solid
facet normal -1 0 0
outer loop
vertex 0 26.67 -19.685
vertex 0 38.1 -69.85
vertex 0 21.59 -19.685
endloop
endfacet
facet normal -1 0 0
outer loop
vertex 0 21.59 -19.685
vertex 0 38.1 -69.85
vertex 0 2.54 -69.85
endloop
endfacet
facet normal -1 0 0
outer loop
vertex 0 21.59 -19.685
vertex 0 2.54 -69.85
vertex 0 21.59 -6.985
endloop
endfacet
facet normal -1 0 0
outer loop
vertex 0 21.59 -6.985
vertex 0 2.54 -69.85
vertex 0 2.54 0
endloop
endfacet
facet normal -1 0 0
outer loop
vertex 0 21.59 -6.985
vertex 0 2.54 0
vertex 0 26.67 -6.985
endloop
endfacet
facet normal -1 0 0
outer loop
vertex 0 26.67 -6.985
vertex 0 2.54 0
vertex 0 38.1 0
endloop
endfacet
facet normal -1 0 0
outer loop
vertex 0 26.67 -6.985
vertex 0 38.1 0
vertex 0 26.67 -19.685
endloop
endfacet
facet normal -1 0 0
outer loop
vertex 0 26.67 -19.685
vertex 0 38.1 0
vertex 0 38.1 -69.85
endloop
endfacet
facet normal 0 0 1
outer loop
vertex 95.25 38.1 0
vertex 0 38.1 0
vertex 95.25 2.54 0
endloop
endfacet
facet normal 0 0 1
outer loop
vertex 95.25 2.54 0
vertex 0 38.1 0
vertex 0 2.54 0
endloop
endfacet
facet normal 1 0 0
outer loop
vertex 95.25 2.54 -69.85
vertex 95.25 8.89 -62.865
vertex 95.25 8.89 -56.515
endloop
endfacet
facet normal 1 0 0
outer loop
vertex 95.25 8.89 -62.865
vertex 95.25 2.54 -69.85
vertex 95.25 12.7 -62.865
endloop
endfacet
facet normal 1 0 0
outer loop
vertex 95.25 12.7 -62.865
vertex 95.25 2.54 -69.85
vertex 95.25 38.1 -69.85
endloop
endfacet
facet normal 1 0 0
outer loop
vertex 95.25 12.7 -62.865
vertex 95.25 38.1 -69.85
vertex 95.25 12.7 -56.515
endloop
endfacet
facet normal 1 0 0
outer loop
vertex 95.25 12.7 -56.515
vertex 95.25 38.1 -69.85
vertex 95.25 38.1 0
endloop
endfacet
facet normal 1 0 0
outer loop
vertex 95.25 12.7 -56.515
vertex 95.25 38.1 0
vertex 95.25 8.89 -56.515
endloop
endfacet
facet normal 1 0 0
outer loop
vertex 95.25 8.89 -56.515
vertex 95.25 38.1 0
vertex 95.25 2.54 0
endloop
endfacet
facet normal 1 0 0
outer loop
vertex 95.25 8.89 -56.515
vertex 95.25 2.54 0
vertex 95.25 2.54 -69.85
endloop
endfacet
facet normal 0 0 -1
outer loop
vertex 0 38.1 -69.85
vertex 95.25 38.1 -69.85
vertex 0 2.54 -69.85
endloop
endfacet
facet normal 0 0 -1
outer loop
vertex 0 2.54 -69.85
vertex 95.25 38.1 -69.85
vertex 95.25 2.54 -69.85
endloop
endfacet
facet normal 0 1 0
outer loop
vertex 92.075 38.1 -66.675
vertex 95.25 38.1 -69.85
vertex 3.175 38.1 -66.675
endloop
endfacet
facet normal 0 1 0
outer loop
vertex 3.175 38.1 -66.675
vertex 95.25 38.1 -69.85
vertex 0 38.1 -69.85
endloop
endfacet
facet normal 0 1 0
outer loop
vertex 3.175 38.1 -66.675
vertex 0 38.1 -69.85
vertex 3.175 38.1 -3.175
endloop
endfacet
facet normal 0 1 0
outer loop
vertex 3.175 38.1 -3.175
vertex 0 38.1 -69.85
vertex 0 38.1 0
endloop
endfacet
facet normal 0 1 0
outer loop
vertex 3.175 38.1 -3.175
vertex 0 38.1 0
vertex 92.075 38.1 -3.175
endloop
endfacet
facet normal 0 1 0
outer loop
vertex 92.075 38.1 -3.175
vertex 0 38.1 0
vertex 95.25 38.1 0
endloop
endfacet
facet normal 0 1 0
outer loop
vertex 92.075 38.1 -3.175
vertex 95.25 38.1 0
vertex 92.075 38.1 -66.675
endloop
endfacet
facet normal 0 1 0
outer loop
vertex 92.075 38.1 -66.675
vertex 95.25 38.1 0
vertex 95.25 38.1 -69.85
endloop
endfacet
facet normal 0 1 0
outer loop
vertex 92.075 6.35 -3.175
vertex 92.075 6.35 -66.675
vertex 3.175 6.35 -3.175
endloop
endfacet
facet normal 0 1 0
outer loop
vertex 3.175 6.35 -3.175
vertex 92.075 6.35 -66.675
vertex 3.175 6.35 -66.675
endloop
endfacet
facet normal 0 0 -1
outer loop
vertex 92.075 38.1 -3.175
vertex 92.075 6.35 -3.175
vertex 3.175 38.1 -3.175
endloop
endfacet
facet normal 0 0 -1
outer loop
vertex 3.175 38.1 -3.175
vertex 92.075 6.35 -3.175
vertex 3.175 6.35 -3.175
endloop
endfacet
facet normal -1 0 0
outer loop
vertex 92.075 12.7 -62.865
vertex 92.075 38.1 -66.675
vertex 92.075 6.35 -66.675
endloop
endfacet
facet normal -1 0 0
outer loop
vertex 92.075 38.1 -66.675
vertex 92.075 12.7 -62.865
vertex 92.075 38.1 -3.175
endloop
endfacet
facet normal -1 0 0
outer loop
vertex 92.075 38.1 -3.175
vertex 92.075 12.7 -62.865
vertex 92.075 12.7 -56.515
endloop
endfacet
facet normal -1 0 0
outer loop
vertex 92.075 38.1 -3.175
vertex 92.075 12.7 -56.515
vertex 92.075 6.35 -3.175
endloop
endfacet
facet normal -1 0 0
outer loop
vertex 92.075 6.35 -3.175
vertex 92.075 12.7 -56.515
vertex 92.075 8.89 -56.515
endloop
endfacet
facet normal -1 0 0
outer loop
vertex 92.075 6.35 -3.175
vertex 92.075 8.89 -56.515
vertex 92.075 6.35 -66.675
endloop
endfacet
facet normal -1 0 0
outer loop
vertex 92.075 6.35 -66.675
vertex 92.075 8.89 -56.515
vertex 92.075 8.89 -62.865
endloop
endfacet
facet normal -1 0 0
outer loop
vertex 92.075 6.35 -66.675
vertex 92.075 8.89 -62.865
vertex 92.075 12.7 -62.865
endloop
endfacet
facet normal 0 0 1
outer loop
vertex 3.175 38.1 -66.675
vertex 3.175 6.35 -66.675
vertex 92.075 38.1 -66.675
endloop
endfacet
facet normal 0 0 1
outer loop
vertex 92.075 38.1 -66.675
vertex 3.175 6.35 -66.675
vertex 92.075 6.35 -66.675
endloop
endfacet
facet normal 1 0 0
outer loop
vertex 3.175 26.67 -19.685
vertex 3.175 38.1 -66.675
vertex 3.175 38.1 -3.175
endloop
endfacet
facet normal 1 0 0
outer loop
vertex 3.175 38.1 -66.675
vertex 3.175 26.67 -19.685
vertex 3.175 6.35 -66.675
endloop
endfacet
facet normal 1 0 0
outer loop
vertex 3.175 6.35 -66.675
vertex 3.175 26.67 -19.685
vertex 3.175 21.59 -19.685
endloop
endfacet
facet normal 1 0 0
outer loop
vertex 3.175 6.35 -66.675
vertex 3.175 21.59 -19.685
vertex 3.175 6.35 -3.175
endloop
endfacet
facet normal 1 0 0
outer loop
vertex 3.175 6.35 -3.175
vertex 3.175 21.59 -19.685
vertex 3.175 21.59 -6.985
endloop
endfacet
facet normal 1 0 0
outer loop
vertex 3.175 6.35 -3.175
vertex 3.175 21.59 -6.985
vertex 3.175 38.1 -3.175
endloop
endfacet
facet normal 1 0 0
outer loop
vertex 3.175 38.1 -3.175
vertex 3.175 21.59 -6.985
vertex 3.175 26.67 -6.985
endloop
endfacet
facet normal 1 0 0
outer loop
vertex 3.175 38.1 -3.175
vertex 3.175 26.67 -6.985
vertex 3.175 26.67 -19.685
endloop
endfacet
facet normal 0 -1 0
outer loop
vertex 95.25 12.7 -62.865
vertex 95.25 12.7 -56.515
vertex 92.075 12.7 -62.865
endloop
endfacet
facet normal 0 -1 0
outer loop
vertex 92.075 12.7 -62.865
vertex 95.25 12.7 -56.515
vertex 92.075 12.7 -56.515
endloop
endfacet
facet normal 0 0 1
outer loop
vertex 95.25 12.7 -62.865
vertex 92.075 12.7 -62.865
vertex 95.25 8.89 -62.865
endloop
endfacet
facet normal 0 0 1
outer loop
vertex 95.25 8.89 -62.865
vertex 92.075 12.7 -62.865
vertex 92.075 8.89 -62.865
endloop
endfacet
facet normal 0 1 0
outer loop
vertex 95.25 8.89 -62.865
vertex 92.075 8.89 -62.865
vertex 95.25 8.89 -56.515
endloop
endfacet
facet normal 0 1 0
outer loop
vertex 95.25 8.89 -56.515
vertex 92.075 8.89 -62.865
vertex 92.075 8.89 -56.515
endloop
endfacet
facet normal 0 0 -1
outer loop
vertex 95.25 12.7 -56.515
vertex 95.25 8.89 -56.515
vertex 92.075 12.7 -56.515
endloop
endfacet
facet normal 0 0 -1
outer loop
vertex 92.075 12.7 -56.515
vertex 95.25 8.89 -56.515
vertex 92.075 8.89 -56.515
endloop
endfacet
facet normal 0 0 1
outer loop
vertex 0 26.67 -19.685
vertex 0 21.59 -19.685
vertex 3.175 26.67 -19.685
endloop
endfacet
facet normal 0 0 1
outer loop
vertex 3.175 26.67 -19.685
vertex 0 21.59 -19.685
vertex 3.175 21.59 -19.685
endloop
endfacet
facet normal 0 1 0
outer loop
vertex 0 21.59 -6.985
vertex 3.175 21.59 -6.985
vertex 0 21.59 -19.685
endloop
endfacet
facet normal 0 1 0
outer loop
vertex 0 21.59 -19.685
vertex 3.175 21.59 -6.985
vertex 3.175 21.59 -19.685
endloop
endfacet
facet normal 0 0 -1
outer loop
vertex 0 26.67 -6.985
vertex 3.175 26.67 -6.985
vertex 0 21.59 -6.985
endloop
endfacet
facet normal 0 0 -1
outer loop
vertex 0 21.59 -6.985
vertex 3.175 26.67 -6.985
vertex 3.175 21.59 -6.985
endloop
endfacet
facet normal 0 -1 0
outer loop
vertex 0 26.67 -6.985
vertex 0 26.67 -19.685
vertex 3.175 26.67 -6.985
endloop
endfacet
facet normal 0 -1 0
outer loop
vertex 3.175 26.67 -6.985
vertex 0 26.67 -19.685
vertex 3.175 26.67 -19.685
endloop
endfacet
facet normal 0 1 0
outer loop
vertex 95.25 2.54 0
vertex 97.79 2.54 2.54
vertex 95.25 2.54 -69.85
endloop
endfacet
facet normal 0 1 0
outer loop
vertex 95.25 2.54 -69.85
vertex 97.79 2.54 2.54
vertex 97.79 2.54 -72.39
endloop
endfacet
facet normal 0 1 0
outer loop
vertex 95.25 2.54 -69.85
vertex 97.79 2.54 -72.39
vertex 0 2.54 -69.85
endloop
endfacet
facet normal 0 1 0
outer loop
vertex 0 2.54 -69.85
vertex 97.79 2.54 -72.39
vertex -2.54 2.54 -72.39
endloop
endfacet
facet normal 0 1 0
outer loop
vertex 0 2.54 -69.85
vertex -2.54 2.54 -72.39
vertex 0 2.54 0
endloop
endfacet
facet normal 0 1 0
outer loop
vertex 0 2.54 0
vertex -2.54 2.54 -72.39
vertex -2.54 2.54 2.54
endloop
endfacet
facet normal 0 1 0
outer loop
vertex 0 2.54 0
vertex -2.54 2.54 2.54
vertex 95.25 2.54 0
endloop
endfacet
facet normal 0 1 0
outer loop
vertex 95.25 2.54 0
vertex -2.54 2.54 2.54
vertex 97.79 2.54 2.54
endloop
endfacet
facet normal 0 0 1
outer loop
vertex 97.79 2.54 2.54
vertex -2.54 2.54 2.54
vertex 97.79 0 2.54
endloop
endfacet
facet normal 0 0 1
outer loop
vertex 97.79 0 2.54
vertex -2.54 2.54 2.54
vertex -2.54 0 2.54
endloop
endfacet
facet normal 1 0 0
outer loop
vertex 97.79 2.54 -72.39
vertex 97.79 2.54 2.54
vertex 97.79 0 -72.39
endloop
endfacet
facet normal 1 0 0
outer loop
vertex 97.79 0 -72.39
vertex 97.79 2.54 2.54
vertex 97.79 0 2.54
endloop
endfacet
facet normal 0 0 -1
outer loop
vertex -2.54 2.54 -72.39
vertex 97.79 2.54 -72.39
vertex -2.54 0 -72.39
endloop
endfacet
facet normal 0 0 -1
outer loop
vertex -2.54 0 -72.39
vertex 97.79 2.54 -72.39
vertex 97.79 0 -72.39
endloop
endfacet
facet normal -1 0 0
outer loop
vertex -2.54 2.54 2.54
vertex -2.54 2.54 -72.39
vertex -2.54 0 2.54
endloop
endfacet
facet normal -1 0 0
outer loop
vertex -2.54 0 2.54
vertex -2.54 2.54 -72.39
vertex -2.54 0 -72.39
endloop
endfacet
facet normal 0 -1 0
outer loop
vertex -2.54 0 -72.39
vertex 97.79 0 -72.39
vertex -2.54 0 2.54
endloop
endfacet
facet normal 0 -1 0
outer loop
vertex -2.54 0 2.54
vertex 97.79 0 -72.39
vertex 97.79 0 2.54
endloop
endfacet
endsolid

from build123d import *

# Parameters (mm, degrees)
SKETCH1_W           = 95.25
SKETCH1_H           = 69.85
BOSS_EXTRUDE1_DEPTH = 38.1
SKETCH2_W           = 88.9
SKETCH2_H           = 63.5
CUT_EXTRUDE1_DEPTH  = 31.75
CUT_EXTRUDE2_REACH  = 126.11
SKETCH3_W           = 6.35
SKETCH3_H           = 3.81
CUT_EXTRUDE3_REACH  = 126.11
SKETCH4_W           = 12.7
SKETCH4_H           = 5.08
SKETCH5_W           = 100.33
SKETCH5_H           = 74.93
BOSS_EXTRUDE2_DEPTH = 2.54


with BuildPart() as part:
    # Sketch1 → Boss-Extrude1 (new body)
    with BuildSketch(Plane(origin=(0, 0, 0), x_dir=(1, 0, 0), z_dir=(0, 1, 0))):
        with Locations((47.625, 34.925)):
            Rectangle(SKETCH1_W, SKETCH1_H)
    extrude(amount=BOSS_EXTRUDE1_DEPTH)

    # Sketch2 → Cut-Extrude1 (cut)
    with BuildSketch(Plane(origin=(0, 38.1, 0), x_dir=(1, 0, 0), z_dir=(0, 1, 0))):
        with Locations((47.625, 34.925)):
            Rectangle(SKETCH2_W, SKETCH2_H)
    extrude(amount=-CUT_EXTRUDE1_DEPTH, mode=Mode.SUBTRACT)

    # Sketch3 → Cut-Extrude2 (cut, up to next)
    with BuildSketch(Plane(origin=(95.25, 0, 0), x_dir=(0, 0, -1), z_dir=(1, 0, 0)), mode=Mode.PRIVATE) as cut_extrude2_sk1:
        with Locations((59.69, 10.795)):
            Rectangle(SKETCH3_W, SKETCH3_H)
    cut_extrude2_tool1 = extrude(cut_extrude2_sk1.sketch, amount=-CUT_EXTRUDE2_REACH, mode=Mode.PRIVATE) & part.part
    add(cut_extrude2_tool1.solids().sort_by_distance((95.25, 10.795, -59.69))[0], mode=Mode.SUBTRACT)

    # Sketch4 → Cut-Extrude3 (cut, up to next)
    with BuildSketch(Plane.ZY, mode=Mode.PRIVATE) as cut_extrude3_sk1:
        with Locations((-13.335, 24.13)):
            Rectangle(SKETCH4_W, SKETCH4_H)
    cut_extrude3_tool1 = extrude(cut_extrude3_sk1.sketch, amount=-CUT_EXTRUDE3_REACH, mode=Mode.PRIVATE) & part.part
    add(cut_extrude3_tool1.solids().sort_by_distance((0, 24.13, -13.335))[0], mode=Mode.SUBTRACT)

    # Sketch5 → Boss-Extrude2 (add)
    with BuildSketch(Plane.XZ):
        with Locations((47.625, -34.925)):
            Rectangle(SKETCH5_W, SKETCH5_H)
    extrude(amount=-BOSS_EXTRUDE2_DEPTH)


solid = part.part
